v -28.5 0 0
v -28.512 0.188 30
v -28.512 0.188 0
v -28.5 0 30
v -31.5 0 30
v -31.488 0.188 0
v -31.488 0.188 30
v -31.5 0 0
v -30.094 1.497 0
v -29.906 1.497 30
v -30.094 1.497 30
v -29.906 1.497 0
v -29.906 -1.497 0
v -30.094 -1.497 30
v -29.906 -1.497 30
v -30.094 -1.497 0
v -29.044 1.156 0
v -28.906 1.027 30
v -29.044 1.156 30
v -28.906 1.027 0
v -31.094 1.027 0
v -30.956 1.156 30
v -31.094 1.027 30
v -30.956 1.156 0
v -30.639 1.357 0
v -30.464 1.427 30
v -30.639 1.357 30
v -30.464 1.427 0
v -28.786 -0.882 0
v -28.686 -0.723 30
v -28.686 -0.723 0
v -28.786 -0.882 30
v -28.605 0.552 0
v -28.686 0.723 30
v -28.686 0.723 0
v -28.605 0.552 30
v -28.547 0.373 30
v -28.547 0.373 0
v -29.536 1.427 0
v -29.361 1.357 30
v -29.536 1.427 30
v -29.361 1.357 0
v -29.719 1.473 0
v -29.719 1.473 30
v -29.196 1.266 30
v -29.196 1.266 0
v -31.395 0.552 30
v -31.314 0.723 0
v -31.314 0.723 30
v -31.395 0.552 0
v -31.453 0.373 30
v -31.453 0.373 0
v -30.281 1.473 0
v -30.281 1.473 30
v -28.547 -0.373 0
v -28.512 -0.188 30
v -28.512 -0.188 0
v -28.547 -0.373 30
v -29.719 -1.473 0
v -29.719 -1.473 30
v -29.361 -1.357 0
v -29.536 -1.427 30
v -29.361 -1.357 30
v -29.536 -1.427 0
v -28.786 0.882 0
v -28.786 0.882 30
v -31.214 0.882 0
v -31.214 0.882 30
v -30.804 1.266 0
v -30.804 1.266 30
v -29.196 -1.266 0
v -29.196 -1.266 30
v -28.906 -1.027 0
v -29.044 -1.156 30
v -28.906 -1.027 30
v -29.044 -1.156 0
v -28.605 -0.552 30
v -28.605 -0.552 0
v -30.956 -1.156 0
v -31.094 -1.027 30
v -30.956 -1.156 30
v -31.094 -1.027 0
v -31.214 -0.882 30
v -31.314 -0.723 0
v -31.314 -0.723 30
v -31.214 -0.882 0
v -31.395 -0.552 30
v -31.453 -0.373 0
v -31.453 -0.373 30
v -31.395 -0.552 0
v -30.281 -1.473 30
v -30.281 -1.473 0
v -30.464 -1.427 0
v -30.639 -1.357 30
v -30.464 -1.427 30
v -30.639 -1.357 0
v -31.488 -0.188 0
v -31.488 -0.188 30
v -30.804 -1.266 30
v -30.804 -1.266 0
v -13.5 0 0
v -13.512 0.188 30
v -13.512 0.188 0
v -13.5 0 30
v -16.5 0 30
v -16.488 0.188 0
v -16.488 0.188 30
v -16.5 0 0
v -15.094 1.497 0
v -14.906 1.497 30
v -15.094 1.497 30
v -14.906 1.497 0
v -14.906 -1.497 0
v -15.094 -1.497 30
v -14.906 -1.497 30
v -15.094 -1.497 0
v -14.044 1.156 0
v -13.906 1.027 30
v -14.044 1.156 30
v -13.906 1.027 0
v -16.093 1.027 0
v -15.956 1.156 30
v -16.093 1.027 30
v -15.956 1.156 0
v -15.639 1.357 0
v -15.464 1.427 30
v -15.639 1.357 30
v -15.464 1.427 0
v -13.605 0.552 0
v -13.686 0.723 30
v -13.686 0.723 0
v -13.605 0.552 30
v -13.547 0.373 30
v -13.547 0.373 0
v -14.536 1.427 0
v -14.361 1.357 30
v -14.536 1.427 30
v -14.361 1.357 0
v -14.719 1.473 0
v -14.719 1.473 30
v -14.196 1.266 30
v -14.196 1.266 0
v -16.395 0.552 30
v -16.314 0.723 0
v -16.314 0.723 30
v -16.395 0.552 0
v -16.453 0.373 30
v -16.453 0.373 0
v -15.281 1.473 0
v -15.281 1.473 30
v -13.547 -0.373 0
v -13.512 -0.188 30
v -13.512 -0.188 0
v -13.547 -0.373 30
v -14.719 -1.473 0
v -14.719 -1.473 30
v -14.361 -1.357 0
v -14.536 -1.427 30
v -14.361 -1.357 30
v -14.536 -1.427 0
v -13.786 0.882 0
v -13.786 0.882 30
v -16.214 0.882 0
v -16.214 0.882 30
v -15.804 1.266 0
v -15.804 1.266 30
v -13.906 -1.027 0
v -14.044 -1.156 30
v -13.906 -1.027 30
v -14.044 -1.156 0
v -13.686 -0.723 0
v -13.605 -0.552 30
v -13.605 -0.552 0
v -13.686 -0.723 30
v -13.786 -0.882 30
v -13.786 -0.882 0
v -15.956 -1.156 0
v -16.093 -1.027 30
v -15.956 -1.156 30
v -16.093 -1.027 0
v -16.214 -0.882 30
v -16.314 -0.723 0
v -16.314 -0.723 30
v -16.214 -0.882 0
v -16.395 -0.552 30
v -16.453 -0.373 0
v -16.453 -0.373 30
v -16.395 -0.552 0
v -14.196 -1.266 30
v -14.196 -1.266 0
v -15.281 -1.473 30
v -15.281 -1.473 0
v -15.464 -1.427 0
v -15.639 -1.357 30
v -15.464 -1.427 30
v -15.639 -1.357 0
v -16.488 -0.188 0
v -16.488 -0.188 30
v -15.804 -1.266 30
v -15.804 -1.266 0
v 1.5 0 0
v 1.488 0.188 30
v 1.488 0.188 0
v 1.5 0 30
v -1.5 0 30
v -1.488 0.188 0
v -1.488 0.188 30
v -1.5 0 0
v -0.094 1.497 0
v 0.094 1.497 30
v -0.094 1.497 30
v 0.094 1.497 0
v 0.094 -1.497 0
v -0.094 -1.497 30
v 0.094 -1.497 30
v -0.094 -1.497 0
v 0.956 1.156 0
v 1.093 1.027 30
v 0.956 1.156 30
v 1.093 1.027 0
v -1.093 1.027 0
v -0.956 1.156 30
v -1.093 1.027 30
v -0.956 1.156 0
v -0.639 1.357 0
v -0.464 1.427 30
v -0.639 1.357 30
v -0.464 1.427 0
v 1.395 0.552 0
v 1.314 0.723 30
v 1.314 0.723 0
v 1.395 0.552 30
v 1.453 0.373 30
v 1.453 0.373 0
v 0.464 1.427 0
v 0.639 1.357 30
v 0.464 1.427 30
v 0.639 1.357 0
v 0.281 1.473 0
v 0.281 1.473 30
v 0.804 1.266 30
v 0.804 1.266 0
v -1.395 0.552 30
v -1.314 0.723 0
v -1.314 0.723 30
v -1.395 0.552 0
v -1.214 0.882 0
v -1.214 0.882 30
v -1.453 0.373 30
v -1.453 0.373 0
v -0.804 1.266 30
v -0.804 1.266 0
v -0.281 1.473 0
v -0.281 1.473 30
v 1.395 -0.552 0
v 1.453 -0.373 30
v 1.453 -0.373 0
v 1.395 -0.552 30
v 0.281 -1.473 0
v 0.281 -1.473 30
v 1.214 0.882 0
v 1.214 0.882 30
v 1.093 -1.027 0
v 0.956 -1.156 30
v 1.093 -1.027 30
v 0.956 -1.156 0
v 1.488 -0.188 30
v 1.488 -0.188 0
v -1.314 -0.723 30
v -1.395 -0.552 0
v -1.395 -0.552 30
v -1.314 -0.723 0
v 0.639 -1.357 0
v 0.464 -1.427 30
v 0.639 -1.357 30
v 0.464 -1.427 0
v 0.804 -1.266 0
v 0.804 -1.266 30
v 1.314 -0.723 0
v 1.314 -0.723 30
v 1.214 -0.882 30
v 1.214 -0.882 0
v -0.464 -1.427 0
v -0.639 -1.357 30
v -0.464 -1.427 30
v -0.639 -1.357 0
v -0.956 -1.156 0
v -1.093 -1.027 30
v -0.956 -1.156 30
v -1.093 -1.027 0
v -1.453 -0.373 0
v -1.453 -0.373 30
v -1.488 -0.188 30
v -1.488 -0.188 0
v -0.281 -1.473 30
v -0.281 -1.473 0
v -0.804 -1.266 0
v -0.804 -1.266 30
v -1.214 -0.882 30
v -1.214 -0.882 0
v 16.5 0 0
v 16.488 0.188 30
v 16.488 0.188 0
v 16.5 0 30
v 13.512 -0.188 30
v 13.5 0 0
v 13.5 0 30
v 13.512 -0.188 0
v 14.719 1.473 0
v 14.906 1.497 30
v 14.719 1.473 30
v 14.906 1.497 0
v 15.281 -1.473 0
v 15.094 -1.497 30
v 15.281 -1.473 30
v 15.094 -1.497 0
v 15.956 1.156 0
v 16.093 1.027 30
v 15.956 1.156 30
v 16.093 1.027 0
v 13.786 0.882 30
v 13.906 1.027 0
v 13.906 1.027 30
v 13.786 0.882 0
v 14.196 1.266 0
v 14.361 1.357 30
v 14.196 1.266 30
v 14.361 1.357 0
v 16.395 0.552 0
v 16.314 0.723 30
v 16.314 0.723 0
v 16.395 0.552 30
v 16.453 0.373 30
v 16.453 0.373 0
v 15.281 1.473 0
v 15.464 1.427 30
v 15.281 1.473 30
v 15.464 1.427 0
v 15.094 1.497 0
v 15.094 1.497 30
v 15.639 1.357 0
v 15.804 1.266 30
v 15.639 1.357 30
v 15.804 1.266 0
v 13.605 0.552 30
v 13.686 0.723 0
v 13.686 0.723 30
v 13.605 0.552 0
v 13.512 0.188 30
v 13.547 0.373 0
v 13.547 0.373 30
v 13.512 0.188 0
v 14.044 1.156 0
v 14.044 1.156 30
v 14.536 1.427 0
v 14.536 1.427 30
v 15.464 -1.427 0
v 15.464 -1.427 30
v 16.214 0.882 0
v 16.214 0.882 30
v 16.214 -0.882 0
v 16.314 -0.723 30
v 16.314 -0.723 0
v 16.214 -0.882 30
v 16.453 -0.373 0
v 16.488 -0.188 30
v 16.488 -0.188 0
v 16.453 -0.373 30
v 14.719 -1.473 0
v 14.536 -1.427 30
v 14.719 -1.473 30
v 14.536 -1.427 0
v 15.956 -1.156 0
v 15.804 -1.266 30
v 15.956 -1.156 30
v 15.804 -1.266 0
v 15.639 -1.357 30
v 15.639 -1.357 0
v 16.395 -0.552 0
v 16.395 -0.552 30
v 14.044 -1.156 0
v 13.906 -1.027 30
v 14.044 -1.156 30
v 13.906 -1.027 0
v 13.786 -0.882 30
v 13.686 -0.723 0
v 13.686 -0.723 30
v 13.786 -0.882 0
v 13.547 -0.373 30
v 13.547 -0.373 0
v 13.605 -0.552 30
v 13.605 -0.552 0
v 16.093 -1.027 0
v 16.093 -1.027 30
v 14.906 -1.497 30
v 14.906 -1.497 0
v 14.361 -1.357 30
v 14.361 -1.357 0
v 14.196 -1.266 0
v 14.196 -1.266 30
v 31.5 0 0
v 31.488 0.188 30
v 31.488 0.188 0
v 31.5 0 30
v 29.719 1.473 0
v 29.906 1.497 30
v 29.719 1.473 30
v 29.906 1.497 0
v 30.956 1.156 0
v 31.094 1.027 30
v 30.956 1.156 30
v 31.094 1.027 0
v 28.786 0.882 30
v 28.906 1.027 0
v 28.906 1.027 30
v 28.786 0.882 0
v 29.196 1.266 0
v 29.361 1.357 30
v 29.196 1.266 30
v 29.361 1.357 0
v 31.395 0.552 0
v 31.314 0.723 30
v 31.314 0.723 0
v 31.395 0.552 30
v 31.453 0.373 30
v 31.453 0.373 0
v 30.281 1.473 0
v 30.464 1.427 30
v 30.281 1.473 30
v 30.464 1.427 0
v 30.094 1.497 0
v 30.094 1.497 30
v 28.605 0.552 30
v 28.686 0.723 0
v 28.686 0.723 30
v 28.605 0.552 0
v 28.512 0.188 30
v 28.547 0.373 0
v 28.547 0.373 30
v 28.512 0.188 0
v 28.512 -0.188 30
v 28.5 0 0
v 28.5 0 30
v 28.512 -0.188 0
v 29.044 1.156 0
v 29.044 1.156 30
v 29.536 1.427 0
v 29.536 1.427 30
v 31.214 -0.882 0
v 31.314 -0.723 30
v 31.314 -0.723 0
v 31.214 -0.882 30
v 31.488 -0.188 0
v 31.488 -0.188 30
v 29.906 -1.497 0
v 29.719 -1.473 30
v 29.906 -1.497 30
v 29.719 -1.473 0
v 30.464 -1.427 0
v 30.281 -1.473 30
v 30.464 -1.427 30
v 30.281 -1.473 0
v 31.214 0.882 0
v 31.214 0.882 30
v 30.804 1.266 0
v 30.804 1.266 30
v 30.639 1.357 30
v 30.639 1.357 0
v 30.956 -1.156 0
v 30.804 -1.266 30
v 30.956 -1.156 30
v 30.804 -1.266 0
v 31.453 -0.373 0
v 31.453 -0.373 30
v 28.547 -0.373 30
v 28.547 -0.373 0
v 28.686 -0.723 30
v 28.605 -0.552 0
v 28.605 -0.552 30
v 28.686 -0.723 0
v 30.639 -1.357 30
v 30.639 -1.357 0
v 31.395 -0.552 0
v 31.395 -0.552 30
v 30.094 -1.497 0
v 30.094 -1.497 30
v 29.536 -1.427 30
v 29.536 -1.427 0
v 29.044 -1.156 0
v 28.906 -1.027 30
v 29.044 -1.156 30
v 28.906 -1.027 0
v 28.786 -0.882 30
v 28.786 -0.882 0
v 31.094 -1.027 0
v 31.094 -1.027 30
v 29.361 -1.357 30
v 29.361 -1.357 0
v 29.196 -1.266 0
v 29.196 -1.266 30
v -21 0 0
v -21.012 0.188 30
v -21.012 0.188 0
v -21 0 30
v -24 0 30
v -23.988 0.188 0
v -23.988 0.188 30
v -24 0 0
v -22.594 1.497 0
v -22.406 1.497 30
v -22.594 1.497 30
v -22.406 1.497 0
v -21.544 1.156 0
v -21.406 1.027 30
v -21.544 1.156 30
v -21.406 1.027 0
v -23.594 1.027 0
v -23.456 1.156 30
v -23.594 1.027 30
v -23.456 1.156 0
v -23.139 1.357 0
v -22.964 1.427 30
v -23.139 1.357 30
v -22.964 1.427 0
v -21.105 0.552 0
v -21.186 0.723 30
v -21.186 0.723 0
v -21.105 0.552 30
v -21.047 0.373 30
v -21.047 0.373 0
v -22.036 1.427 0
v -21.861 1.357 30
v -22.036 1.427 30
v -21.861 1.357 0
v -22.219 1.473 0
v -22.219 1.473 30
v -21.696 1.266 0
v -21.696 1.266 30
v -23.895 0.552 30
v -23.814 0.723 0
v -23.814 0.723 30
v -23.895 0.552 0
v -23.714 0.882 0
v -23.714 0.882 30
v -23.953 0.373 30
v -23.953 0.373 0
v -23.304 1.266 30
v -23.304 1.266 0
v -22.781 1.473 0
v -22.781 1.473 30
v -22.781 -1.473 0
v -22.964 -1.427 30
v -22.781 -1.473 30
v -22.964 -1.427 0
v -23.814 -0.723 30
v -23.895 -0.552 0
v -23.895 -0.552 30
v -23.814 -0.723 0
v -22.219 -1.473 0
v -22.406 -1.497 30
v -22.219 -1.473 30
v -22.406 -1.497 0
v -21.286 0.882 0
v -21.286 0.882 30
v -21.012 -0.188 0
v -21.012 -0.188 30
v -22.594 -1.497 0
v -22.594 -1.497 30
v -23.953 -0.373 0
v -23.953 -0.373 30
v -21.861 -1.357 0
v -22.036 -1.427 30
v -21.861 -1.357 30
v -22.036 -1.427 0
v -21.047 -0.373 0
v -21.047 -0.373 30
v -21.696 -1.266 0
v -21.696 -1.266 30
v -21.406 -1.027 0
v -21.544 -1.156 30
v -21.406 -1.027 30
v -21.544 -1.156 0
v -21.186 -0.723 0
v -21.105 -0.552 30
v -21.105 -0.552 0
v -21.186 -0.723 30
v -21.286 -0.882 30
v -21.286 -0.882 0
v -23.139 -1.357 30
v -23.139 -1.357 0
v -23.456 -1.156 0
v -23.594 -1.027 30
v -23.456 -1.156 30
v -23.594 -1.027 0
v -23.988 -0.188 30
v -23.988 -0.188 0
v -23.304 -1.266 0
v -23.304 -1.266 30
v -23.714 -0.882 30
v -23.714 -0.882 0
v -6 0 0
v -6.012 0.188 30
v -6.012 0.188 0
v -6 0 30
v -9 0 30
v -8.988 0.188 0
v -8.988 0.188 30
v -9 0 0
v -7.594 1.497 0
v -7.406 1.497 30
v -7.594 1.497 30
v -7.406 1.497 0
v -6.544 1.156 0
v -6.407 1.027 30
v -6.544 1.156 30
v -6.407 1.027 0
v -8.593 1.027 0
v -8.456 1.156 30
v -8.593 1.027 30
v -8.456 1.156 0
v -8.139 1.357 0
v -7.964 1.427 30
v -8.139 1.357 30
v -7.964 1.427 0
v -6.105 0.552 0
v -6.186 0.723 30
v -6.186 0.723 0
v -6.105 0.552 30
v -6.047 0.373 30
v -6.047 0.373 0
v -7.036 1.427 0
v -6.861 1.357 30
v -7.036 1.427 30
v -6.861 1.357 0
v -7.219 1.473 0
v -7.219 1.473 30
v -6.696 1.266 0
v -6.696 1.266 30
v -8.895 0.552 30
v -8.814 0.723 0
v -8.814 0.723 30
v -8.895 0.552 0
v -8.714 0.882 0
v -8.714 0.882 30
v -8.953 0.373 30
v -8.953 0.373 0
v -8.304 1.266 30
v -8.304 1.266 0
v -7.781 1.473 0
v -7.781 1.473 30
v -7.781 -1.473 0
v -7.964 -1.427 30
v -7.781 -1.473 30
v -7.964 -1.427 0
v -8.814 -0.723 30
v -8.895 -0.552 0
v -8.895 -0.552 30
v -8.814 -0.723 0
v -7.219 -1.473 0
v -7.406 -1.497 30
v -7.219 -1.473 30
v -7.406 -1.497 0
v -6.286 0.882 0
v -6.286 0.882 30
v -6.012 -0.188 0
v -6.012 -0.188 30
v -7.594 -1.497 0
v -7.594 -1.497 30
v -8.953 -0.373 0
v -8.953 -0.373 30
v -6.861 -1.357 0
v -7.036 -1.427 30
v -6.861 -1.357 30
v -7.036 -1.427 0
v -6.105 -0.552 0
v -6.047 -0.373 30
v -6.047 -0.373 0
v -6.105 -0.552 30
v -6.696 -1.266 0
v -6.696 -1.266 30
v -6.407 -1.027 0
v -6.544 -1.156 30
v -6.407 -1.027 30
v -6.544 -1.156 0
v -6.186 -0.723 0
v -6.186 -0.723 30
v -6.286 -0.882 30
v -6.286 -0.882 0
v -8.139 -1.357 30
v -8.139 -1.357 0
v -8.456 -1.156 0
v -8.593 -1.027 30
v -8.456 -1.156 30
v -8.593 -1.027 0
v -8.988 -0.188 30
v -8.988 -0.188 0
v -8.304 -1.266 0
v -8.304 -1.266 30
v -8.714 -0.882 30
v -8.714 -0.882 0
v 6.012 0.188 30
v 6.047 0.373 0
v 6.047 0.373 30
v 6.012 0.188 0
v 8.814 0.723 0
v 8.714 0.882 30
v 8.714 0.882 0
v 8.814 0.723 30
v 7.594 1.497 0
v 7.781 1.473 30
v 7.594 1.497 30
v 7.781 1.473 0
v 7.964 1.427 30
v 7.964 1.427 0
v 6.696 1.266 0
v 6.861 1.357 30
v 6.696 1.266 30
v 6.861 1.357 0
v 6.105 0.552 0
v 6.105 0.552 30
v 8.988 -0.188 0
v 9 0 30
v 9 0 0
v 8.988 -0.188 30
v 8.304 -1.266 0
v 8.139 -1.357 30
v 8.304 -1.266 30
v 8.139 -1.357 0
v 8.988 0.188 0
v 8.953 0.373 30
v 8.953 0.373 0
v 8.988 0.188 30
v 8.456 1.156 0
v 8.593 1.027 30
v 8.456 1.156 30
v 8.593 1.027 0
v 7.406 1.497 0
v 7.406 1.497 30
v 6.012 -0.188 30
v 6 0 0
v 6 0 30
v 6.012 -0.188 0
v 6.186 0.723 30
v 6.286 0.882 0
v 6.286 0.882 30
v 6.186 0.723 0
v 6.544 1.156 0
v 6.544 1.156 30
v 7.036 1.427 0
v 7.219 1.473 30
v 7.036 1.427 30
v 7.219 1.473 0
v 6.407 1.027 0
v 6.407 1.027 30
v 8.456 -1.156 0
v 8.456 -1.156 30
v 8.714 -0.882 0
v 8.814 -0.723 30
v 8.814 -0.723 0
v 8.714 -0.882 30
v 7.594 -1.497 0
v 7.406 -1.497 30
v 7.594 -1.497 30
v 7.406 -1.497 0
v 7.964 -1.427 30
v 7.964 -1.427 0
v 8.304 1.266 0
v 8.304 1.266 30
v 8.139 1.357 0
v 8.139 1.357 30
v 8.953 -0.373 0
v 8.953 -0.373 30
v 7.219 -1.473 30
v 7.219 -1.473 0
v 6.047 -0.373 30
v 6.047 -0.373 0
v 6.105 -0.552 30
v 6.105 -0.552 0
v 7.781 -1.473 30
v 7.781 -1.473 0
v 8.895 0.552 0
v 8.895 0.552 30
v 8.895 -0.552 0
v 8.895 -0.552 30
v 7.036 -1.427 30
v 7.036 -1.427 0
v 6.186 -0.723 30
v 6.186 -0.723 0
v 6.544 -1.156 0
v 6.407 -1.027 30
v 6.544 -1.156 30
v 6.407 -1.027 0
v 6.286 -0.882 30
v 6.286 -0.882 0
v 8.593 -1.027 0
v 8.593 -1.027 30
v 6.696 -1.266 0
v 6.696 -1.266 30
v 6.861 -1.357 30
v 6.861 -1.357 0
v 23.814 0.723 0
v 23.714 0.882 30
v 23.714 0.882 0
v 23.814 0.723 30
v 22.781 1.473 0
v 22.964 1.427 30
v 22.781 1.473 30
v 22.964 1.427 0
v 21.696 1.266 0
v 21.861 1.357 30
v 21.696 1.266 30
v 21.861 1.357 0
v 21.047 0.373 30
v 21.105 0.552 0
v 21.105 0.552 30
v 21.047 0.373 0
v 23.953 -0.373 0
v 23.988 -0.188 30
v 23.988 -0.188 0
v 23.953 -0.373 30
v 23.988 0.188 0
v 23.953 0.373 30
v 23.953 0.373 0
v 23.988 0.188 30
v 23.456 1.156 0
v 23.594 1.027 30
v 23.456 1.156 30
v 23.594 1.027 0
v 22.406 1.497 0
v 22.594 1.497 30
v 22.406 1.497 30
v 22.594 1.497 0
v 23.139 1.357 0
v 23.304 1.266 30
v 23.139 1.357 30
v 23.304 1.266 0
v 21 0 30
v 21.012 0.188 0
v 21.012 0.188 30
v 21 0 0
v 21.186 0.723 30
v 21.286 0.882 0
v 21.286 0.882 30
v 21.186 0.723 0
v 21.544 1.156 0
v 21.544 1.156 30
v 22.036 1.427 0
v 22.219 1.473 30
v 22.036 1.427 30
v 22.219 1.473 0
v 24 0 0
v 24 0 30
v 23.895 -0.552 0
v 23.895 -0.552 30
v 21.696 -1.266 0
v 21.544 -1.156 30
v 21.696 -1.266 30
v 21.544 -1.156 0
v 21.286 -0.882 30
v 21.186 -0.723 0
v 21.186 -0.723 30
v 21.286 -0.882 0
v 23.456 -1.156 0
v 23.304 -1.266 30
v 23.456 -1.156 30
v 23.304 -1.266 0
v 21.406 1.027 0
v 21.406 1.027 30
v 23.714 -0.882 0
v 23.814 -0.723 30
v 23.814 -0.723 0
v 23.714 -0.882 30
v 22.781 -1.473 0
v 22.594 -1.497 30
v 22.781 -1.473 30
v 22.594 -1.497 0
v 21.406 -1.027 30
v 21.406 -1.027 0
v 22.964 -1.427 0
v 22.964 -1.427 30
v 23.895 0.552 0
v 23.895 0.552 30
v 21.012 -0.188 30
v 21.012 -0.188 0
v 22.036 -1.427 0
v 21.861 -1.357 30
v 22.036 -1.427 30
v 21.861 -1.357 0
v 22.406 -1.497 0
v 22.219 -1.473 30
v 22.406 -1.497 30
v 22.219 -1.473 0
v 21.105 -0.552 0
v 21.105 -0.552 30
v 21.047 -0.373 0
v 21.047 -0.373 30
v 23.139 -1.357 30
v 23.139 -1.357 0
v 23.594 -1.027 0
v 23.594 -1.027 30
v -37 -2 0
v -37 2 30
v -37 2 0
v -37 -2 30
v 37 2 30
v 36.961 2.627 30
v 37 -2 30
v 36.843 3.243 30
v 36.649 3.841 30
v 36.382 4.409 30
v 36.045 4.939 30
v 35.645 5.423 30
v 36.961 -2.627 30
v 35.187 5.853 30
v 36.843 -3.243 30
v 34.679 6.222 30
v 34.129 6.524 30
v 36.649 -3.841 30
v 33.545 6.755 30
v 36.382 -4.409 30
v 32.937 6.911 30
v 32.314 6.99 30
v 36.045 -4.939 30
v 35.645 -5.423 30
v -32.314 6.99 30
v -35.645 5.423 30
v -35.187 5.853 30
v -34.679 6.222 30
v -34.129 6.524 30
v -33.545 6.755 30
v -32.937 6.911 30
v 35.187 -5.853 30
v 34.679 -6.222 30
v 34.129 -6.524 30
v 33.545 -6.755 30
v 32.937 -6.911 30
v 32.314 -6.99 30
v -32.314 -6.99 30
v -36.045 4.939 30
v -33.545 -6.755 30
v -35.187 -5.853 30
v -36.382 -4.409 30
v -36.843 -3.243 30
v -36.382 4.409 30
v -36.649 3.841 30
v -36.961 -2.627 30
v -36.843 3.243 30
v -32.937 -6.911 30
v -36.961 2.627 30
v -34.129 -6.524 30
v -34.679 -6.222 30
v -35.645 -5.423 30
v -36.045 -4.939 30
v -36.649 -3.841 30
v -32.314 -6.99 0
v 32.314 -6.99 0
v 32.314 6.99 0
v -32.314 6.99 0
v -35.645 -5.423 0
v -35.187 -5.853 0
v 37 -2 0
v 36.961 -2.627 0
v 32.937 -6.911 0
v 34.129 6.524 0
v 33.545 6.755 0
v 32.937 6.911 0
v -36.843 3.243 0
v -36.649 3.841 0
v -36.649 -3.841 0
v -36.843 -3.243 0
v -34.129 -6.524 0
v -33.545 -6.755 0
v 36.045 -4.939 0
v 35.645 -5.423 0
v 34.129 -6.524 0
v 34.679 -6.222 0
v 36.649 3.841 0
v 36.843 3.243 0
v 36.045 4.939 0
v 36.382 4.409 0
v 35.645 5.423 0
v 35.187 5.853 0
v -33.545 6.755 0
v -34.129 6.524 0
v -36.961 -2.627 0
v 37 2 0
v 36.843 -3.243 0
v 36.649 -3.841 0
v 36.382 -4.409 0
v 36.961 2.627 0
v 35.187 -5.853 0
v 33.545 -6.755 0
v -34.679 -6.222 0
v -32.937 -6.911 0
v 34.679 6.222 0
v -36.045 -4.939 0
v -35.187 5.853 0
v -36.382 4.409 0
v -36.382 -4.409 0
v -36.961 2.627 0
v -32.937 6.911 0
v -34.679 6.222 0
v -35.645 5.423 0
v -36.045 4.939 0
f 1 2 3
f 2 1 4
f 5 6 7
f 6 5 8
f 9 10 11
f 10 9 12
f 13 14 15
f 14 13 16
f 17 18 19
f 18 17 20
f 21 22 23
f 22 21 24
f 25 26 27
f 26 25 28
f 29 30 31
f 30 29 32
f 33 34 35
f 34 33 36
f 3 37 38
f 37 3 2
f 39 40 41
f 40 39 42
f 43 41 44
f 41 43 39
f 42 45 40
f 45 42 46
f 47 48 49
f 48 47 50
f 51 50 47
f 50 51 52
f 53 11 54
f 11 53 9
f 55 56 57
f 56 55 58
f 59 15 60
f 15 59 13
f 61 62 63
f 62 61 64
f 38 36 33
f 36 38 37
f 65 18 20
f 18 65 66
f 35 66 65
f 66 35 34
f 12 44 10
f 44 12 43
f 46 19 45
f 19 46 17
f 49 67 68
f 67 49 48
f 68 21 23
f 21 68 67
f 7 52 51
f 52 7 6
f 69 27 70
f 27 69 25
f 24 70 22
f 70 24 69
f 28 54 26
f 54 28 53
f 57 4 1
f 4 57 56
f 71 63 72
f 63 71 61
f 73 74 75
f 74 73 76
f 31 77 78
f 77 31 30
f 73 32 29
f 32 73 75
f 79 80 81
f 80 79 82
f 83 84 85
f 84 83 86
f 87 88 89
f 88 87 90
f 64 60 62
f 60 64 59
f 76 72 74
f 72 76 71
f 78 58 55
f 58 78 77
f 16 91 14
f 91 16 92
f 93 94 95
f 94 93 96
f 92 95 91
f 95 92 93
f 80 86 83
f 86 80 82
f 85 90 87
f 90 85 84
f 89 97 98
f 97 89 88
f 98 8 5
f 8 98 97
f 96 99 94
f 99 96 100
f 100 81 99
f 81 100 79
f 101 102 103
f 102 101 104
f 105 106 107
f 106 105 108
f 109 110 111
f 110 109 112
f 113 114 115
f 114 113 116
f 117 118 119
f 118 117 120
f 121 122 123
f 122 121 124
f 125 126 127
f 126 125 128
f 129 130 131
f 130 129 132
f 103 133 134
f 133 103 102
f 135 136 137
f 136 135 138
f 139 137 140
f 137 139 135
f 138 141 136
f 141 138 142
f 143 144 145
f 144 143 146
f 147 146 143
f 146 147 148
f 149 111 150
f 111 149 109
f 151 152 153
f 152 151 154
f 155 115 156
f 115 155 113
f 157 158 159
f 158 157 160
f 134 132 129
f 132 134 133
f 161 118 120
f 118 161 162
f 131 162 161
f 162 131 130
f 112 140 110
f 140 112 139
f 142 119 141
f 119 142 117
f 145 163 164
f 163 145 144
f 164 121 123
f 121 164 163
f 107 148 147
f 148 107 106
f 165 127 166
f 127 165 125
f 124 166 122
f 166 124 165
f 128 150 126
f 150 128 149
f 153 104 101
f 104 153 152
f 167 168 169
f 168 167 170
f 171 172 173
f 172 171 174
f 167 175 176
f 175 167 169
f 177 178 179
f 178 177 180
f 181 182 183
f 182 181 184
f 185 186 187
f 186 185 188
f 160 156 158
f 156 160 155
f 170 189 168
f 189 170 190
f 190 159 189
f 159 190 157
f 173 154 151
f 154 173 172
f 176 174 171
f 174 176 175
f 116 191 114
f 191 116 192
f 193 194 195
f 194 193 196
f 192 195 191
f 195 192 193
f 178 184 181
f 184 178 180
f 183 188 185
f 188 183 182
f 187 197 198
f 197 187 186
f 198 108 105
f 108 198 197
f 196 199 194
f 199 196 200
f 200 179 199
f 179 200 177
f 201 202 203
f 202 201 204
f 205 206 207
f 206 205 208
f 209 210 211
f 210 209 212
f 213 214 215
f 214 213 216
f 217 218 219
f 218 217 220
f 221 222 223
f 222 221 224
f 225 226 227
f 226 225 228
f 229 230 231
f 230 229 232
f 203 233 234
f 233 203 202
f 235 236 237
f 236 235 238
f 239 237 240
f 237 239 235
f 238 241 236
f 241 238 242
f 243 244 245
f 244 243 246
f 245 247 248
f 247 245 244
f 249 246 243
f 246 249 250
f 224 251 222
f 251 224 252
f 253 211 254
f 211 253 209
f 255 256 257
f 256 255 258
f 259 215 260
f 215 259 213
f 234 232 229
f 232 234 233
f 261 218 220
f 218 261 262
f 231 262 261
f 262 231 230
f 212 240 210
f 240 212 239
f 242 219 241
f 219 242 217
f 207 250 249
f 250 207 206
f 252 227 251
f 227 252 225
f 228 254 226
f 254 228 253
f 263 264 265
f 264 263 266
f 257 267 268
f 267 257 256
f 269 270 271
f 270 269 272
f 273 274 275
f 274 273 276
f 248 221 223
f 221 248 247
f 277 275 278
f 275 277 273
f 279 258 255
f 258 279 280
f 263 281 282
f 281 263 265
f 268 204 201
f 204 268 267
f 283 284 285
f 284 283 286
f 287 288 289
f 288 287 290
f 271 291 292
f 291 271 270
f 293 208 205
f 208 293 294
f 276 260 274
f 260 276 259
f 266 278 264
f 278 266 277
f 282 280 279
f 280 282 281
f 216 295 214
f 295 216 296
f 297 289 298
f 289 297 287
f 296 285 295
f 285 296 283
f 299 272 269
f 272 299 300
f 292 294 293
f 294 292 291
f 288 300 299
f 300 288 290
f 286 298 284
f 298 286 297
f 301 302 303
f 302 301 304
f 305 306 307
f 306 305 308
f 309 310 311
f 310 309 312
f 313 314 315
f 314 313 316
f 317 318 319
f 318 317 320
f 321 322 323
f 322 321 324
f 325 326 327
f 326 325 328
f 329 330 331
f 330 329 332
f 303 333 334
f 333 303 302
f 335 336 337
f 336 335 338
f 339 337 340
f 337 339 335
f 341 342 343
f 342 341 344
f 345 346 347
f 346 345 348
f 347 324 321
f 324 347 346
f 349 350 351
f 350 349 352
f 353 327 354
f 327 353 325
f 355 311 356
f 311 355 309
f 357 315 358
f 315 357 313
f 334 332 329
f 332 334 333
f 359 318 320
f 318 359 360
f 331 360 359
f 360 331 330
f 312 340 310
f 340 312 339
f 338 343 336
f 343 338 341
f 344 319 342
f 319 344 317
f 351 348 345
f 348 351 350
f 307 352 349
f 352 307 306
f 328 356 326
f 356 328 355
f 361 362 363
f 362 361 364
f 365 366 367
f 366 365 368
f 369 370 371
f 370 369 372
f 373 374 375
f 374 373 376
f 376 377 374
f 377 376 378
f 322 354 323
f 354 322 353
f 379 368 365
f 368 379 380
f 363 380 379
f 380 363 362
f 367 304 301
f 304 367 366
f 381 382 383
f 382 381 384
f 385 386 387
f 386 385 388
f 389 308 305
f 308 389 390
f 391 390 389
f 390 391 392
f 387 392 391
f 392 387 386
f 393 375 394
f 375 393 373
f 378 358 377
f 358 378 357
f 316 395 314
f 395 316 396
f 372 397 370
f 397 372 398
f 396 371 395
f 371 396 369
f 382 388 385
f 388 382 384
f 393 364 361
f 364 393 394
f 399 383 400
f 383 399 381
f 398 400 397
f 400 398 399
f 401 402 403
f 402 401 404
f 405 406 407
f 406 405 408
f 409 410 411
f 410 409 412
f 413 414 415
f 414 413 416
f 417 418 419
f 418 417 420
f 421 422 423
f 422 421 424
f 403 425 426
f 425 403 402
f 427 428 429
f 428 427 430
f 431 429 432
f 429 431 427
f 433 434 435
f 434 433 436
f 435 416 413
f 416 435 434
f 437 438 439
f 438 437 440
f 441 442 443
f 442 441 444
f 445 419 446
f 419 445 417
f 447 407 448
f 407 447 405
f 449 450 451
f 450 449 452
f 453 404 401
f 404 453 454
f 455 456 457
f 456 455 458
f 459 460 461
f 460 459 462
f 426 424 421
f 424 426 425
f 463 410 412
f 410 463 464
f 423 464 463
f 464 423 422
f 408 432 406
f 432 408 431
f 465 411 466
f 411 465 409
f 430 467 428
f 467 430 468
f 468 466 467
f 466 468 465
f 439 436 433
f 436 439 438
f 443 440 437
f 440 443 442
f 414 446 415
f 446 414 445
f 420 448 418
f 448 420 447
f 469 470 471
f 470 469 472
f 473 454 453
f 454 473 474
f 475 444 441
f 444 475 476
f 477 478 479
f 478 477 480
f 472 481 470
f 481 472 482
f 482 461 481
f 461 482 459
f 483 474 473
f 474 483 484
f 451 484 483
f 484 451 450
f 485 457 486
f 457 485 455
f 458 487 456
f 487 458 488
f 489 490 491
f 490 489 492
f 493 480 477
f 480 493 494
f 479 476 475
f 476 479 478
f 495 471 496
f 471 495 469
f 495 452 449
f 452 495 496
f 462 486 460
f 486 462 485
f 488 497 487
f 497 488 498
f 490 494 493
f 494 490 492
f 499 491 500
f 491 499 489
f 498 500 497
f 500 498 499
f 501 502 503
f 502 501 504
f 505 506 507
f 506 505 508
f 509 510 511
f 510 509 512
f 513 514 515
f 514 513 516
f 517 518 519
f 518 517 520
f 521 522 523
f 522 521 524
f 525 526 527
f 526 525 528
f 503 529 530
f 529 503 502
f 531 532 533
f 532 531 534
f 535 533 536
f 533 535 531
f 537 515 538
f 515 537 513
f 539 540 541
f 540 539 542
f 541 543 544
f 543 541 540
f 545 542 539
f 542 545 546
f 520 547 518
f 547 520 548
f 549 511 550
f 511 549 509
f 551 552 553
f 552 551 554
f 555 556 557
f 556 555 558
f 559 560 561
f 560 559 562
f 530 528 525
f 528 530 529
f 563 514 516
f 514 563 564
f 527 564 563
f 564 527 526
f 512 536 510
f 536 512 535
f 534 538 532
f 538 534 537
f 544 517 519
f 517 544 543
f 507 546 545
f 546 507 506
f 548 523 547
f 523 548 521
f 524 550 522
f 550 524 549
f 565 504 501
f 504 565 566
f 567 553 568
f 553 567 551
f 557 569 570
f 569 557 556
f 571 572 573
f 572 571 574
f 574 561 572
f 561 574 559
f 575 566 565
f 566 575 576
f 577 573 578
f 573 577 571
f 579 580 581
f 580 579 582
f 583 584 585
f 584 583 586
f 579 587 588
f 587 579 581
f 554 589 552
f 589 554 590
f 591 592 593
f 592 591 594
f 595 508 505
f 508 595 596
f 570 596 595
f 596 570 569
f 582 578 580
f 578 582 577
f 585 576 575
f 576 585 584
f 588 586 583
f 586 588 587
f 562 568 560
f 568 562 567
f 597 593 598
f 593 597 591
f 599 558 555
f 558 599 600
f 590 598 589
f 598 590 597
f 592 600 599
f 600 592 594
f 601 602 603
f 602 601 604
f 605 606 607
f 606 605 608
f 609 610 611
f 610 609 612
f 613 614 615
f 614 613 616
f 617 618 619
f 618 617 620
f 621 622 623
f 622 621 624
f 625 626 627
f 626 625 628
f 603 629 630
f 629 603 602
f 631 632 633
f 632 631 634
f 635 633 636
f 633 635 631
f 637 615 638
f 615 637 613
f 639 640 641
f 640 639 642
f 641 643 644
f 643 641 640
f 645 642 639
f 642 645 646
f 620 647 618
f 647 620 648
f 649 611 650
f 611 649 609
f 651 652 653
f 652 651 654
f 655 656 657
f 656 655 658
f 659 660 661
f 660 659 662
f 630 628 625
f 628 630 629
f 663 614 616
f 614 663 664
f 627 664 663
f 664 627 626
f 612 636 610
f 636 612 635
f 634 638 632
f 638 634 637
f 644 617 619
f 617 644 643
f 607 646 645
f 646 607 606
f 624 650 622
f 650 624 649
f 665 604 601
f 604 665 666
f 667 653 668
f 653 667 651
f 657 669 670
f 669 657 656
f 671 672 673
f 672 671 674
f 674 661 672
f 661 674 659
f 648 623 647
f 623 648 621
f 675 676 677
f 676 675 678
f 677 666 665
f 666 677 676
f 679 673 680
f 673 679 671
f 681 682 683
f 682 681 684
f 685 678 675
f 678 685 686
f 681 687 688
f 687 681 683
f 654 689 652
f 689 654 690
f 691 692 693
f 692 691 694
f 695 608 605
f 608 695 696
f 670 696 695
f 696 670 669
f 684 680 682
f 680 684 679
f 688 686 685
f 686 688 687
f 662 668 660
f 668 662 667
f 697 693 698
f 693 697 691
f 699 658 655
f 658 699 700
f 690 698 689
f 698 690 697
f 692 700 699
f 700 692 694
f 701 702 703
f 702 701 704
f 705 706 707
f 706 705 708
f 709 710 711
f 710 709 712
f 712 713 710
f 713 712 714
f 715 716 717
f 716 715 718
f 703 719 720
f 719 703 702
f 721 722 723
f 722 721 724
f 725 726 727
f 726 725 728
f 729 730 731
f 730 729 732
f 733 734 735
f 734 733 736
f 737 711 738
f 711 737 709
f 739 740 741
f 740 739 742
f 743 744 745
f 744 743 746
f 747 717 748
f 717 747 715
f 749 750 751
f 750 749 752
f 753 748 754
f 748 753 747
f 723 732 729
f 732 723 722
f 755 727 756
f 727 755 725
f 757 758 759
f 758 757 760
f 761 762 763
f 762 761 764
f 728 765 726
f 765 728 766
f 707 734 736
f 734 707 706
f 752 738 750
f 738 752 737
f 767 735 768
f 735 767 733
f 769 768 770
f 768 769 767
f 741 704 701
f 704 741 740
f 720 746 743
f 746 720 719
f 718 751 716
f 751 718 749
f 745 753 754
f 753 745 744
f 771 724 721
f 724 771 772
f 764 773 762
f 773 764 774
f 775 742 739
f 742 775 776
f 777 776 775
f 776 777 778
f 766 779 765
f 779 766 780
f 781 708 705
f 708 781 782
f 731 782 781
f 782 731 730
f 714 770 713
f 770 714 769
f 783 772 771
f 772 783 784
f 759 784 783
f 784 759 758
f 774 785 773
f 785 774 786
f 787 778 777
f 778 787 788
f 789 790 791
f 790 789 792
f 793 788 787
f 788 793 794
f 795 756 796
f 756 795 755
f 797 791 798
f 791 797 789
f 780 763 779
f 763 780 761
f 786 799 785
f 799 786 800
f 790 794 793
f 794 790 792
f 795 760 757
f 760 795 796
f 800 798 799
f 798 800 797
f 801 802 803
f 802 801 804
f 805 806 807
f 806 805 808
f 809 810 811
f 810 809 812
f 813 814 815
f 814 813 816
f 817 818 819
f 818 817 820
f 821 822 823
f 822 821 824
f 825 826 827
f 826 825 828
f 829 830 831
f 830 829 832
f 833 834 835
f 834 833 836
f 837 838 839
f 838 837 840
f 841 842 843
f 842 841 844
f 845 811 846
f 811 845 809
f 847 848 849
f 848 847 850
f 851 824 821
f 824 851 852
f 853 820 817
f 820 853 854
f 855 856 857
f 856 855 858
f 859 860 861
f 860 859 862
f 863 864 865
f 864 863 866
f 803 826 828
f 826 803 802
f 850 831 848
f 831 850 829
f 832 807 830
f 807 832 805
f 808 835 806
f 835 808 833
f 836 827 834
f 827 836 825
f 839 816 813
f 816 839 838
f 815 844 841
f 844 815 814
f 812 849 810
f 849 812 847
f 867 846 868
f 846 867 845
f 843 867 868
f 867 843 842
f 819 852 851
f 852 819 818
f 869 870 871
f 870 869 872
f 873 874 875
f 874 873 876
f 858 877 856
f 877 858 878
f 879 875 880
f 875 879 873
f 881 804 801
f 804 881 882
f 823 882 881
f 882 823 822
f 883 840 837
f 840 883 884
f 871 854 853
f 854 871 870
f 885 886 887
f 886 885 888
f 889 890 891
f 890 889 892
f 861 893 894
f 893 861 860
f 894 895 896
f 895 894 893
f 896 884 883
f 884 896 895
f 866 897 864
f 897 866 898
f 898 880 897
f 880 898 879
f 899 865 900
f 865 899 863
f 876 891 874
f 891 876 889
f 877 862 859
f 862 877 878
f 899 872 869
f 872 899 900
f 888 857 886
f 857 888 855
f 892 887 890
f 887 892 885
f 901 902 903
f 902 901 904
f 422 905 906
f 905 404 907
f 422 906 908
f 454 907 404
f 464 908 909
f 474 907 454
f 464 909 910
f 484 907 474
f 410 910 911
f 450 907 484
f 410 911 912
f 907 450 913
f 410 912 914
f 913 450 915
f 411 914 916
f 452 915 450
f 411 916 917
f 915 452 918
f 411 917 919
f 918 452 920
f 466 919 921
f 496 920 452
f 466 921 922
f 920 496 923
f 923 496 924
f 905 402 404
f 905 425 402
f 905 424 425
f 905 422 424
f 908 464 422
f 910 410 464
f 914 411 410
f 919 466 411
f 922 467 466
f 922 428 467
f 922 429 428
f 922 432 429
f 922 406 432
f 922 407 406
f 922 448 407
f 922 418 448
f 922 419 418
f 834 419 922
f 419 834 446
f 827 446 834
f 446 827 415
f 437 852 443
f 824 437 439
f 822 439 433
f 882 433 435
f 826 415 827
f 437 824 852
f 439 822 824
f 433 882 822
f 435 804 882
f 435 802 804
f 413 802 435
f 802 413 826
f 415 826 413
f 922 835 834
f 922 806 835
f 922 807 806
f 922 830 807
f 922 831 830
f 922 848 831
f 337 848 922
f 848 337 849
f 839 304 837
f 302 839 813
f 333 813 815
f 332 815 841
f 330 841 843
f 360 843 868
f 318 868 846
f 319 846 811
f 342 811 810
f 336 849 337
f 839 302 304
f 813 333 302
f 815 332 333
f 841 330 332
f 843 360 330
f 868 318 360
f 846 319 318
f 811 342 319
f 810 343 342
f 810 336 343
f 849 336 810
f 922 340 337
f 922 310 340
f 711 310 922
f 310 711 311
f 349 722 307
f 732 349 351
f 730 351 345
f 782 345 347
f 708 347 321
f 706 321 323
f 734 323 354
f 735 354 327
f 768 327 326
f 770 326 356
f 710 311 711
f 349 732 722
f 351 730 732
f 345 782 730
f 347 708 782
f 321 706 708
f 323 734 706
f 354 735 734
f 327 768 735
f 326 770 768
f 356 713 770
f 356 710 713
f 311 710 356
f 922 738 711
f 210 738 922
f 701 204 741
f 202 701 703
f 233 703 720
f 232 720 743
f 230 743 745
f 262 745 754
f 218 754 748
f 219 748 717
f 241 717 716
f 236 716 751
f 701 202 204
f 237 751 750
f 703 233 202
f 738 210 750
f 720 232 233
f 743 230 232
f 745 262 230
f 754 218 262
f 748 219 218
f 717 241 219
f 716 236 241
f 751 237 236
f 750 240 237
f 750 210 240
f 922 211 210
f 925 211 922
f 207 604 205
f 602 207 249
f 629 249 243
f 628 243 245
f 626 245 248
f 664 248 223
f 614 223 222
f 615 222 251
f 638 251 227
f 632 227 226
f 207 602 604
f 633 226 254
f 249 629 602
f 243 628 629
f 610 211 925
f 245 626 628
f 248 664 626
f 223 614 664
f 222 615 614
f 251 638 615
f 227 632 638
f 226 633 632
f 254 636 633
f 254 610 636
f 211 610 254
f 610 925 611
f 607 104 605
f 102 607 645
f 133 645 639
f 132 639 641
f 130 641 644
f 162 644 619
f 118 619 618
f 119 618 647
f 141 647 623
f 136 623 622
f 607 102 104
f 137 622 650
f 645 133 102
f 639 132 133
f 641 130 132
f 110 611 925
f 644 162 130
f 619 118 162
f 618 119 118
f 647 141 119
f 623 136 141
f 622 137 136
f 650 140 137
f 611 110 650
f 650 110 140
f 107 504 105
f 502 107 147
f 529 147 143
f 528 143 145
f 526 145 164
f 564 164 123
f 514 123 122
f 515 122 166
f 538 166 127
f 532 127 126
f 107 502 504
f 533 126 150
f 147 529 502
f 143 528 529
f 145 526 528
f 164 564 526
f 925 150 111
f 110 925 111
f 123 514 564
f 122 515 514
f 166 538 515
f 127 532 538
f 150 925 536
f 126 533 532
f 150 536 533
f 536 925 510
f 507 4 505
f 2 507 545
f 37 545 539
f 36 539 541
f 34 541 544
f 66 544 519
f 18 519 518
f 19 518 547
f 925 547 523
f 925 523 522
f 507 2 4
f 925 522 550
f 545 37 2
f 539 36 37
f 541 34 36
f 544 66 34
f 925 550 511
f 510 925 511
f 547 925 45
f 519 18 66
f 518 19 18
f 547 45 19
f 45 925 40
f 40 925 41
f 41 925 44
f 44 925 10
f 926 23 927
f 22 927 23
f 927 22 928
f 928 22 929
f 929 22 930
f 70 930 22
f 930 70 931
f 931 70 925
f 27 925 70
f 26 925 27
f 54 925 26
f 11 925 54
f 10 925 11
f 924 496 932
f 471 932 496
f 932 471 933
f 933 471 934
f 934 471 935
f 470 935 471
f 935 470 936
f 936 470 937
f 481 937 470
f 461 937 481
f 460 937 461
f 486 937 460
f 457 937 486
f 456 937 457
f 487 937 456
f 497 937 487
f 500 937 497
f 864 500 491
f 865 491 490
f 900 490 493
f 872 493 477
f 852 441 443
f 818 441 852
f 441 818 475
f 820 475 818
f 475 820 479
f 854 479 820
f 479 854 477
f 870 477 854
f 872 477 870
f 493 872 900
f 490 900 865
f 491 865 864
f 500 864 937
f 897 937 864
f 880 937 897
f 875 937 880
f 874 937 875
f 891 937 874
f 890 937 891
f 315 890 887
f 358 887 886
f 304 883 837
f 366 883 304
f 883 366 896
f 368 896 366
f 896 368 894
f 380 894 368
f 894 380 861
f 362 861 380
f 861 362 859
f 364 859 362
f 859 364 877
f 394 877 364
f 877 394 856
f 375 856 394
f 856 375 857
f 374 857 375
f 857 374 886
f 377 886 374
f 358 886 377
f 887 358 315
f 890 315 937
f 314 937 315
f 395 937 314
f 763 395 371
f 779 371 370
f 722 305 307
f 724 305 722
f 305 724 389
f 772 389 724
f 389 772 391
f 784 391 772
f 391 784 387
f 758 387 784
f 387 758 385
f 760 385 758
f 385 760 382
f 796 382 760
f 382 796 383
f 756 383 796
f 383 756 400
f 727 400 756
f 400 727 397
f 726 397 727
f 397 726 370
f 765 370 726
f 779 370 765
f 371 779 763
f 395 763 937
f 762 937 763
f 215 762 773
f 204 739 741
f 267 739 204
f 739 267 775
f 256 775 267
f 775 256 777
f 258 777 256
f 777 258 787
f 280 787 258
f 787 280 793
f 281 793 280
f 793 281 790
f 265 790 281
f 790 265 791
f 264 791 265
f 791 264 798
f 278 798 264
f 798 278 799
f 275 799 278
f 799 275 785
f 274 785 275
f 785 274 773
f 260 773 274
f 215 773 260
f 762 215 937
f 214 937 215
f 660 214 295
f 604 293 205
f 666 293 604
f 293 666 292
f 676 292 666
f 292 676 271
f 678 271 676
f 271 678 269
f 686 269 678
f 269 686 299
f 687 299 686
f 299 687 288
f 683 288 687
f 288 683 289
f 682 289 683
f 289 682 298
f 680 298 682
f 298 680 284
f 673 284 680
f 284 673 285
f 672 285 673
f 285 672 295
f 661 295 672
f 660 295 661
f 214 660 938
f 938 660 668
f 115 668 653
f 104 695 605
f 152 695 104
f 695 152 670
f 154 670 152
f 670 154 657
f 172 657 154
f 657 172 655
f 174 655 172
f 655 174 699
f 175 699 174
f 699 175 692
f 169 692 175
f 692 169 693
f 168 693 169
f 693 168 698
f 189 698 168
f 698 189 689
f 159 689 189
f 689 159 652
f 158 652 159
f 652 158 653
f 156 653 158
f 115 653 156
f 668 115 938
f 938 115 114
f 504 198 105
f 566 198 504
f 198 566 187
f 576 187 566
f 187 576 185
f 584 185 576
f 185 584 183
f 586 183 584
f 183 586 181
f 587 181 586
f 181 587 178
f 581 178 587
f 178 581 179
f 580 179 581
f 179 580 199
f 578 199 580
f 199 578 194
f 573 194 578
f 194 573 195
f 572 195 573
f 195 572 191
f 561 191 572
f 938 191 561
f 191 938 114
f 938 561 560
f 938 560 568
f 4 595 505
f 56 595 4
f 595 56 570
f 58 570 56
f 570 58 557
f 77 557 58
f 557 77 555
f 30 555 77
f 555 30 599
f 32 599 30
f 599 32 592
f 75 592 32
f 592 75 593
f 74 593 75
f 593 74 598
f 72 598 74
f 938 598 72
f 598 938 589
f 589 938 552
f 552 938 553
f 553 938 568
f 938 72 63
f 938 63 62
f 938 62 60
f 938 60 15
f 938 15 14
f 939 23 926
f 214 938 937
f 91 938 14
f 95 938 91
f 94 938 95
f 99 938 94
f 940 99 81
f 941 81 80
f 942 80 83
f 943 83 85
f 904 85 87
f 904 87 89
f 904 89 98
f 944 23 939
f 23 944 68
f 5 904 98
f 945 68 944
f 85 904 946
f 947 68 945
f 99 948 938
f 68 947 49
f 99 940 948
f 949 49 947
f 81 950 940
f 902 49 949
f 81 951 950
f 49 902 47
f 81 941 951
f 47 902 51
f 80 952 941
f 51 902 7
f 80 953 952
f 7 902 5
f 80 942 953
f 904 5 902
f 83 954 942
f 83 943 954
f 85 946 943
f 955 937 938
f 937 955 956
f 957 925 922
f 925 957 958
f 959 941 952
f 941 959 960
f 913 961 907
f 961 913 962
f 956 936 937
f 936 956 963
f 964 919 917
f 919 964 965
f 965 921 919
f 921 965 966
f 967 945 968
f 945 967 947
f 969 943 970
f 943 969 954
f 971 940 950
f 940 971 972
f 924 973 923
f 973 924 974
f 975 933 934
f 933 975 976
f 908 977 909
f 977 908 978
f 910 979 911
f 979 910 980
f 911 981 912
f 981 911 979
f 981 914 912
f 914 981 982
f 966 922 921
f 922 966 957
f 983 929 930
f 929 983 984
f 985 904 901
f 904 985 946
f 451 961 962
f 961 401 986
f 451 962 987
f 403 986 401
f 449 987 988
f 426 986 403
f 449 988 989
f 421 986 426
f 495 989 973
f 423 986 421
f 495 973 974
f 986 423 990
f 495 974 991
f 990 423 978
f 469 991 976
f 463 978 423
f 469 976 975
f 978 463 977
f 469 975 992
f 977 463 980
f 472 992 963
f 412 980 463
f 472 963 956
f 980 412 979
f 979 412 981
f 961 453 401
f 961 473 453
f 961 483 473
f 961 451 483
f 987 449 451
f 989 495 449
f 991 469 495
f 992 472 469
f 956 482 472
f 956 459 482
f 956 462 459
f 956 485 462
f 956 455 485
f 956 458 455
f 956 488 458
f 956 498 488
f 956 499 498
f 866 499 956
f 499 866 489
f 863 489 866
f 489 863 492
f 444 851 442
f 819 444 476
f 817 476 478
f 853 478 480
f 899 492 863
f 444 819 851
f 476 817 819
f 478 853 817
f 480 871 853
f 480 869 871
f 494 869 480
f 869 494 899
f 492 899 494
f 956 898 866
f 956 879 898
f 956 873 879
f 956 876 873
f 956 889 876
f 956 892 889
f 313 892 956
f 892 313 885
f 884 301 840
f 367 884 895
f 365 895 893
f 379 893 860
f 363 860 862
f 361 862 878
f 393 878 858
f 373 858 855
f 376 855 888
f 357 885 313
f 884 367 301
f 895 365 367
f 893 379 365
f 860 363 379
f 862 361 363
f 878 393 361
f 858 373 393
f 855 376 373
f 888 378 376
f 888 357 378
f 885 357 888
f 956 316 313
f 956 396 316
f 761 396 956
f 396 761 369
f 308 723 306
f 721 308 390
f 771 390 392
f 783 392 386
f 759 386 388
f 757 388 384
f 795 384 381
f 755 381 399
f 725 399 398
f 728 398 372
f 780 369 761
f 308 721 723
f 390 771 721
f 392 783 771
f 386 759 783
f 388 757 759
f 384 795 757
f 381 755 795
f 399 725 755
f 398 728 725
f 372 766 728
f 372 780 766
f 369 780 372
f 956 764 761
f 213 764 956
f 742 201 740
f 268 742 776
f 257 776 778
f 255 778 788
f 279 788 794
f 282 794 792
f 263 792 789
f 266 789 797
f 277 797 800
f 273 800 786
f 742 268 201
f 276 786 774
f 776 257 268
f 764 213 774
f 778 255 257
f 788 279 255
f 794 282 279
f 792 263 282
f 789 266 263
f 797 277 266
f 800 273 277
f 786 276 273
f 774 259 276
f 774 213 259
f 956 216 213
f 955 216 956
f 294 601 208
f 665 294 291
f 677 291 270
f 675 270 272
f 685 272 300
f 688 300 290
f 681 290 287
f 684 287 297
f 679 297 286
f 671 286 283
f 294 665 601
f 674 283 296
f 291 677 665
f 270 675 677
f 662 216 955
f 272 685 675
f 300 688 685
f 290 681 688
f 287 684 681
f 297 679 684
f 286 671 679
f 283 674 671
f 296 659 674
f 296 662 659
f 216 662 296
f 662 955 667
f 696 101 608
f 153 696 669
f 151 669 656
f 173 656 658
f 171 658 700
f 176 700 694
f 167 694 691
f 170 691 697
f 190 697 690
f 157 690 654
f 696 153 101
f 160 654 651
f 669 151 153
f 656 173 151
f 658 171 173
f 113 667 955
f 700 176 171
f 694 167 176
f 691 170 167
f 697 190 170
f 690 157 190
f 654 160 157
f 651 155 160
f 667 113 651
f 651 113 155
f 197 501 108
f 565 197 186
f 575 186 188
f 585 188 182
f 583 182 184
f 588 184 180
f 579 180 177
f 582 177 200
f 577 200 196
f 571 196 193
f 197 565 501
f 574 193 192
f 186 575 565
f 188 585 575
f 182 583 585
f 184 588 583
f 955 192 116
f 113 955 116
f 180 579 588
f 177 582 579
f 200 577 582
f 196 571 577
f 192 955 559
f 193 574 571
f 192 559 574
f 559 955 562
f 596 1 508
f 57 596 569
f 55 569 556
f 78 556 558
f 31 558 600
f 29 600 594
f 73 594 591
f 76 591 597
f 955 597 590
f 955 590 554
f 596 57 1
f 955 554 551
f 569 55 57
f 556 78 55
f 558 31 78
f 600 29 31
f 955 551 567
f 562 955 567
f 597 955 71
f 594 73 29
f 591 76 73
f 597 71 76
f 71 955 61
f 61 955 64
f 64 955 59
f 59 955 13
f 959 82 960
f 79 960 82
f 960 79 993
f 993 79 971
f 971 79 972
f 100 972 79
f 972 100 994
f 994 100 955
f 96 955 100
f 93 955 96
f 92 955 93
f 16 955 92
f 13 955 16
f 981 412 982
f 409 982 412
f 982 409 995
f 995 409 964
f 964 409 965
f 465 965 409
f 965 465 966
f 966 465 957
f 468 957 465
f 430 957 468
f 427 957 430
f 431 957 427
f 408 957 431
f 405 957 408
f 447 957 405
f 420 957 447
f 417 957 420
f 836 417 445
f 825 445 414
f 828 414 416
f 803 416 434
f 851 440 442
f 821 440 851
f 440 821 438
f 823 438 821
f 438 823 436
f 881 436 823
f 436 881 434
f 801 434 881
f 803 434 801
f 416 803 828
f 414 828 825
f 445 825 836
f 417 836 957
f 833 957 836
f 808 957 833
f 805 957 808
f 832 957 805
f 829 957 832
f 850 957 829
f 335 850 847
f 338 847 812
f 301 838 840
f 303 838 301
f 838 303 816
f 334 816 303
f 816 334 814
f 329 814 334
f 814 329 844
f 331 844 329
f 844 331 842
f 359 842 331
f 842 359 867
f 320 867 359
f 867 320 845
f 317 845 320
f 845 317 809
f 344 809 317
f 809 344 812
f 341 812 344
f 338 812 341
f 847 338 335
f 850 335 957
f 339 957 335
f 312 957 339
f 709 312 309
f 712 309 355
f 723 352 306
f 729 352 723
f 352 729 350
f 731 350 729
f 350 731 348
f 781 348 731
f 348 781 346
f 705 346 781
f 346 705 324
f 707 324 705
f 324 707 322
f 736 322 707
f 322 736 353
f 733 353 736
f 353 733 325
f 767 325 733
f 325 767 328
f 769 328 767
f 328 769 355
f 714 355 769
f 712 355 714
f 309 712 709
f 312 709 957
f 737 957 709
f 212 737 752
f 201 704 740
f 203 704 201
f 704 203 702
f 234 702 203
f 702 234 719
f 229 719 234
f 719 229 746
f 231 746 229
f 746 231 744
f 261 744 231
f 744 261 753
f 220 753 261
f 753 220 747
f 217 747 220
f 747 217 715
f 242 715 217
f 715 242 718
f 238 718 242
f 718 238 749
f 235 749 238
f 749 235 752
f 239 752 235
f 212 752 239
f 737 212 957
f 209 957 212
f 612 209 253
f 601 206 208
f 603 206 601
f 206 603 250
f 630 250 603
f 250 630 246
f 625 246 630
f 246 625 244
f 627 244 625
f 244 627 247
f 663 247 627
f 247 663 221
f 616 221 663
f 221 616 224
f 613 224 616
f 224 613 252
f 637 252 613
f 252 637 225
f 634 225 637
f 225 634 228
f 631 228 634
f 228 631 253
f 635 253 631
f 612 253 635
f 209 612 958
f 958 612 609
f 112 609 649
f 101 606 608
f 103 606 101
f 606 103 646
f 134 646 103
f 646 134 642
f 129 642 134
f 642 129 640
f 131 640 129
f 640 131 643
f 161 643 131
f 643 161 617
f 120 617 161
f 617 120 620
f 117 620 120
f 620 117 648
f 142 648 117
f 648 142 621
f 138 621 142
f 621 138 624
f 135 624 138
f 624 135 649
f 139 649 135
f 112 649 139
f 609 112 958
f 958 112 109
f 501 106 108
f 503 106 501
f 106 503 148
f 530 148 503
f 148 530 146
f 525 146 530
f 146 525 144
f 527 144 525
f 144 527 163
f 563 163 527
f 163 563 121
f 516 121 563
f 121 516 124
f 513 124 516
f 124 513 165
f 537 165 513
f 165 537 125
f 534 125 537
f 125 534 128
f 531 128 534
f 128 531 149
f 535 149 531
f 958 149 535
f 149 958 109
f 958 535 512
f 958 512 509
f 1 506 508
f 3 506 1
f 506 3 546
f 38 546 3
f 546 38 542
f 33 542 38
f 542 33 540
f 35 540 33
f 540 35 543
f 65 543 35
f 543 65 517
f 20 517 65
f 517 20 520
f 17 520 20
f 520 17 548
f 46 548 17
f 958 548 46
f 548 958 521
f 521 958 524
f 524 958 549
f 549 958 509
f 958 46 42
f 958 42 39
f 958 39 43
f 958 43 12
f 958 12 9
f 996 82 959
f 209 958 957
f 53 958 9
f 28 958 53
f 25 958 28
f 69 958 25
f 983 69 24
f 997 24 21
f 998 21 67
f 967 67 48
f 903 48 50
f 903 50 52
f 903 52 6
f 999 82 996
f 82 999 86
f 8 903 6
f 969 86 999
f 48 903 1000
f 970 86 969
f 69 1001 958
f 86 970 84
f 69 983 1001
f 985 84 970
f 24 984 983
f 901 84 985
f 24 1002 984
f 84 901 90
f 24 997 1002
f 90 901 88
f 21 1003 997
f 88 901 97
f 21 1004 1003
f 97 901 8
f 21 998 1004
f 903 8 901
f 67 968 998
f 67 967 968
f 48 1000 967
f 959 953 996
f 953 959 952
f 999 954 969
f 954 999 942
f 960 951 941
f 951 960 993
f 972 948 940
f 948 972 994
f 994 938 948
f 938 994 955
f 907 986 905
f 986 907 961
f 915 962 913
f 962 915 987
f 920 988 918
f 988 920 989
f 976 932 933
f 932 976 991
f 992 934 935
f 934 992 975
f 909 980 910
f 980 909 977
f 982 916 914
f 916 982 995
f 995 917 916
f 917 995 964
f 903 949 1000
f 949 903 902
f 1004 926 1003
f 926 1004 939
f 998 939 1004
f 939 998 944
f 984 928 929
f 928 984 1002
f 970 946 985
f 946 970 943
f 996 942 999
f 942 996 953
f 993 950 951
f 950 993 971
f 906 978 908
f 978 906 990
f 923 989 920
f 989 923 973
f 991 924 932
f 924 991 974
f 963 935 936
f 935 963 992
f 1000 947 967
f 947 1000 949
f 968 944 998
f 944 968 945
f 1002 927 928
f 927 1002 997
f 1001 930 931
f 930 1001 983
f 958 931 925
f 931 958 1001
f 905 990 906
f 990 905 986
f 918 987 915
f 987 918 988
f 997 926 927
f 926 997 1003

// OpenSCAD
$fn = 50;


difference() {
	union() {
		hull() {
			translate(v = [-32.0000000000, 2.0000000000, 0]) {
				cylinder(h = 30, r = 5);
			}
			translate(v = [32.0000000000, 2.0000000000, 0]) {
				cylinder(h = 30, r = 5);
			}
			translate(v = [-32.0000000000, -2.0000000000, 0]) {
				cylinder(h = 30, r = 5);
			}
			translate(v = [32.0000000000, -2.0000000000, 0]) {
				cylinder(h = 30, r = 5);
			}
		}
	}
	union() {
		translate(v = [-30.0000000000, 0.0000000000, 0]) {
			translate(v = [0, 0, -100]) {
				cylinder(h = 200, r = 1.5000000000);
			}
		}
		translate(v = [-15.0000000000, 0.0000000000, 0]) {
			translate(v = [0, 0, -100]) {
				cylinder(h = 200, r = 1.5000000000);
			}
		}
		translate(v = [0, 0, -100]) {
			cylinder(h = 200, r = 1.5000000000);
		}
		translate(v = [15.0000000000, 0.0000000000, 0]) {
			translate(v = [0, 0, -100]) {
				cylinder(h = 200, r = 1.5000000000);
			}
		}
		translate(v = [30.0000000000, 0.0000000000, 0]) {
			translate(v = [0, 0, -100]) {
				cylinder(h = 200, r = 1.5000000000);
			}
		}
		translate(v = [-30.0000000000, 0.0000000000, 0]) {
			translate(v = [0, 0, -100]) {
				cylinder(h = 200, r = 1.5000000000);
			}
		}
		translate(v = [-22.5000000000, 0.0000000000, 0]) {
			translate(v = [0, 0, -100]) {
				cylinder(h = 200, r = 1.5000000000);
			}
		}
		translate(v = [-15.0000000000, 0.0000000000, 0]) {
			translate(v = [0, 0, -100]) {
				cylinder(h = 200, r = 1.5000000000);
			}
		}
		translate(v = [-7.5000000000, 0.0000000000, 0]) {
			translate(v = [0, 0, -100]) {
				cylinder(h = 200, r = 1.5000000000);
			}
		}
		translate(v = [0, 0, -100]) {
			cylinder(h = 200, r = 1.5000000000);
		}
		translate(v = [7.5000000000, 0.0000000000, 0]) {
			translate(v = [0, 0, -100]) {
				cylinder(h = 200, r = 1.5000000000);
			}
		}
		translate(v = [15.0000000000, 0.0000000000, 0]) {
			translate(v = [0, 0, -100]) {
				cylinder(h = 200, r = 1.5000000000);
			}
		}
		translate(v = [22.5000000000, 0.0000000000, 0]) {
			translate(v = [0, 0, -100]) {
				cylinder(h = 200, r = 1.5000000000);
			}
		}
		translate(v = [30.0000000000, 0.0000000000, 0]) {
			translate(v = [0, 0, -100]) {
				cylinder(h = 200, r = 1.5000000000);
			}
		}
	}
}
